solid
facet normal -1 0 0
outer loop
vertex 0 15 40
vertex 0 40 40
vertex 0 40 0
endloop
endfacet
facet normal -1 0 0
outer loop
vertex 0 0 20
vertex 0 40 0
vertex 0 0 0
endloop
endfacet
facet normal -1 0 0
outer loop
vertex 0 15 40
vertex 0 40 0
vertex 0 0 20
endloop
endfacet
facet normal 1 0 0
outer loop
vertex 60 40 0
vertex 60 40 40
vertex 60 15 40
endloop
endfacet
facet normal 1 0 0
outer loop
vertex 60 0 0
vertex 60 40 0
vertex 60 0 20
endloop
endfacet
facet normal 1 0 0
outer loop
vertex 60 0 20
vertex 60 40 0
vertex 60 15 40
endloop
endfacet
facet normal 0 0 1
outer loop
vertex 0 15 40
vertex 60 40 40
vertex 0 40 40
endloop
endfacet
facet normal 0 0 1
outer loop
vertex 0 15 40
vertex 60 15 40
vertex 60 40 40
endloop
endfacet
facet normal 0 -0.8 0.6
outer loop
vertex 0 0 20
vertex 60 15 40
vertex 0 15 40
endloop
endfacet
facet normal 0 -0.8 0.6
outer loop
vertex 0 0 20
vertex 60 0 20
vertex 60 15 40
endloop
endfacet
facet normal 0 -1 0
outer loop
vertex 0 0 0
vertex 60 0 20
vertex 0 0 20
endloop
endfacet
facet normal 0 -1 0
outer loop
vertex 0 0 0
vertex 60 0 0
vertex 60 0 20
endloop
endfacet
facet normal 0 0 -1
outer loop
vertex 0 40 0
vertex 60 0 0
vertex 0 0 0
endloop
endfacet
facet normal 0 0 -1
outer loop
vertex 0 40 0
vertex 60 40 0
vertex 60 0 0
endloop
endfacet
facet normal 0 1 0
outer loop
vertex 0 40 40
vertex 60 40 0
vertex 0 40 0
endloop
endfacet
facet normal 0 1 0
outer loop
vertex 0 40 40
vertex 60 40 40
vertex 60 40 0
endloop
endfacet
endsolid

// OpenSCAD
// 前斜切塊（chamfer）— 由 ortho_lib_work/objects.py 產生，請改 objects.py 後重建
// 長方塊 60×40×40，前上方被一個斜面切掉：斜面從正面高 20 處，斜上到頂面離正面 15 處。
union() {
    multmatrix([[0,0,1,0],[1,0,0,0],[0,1,0,0],[0,0,0,1]]) linear_extrude(height=60) polygon([[0,0],[40,0],[40,40],[15,40],[0,20]]);
}
